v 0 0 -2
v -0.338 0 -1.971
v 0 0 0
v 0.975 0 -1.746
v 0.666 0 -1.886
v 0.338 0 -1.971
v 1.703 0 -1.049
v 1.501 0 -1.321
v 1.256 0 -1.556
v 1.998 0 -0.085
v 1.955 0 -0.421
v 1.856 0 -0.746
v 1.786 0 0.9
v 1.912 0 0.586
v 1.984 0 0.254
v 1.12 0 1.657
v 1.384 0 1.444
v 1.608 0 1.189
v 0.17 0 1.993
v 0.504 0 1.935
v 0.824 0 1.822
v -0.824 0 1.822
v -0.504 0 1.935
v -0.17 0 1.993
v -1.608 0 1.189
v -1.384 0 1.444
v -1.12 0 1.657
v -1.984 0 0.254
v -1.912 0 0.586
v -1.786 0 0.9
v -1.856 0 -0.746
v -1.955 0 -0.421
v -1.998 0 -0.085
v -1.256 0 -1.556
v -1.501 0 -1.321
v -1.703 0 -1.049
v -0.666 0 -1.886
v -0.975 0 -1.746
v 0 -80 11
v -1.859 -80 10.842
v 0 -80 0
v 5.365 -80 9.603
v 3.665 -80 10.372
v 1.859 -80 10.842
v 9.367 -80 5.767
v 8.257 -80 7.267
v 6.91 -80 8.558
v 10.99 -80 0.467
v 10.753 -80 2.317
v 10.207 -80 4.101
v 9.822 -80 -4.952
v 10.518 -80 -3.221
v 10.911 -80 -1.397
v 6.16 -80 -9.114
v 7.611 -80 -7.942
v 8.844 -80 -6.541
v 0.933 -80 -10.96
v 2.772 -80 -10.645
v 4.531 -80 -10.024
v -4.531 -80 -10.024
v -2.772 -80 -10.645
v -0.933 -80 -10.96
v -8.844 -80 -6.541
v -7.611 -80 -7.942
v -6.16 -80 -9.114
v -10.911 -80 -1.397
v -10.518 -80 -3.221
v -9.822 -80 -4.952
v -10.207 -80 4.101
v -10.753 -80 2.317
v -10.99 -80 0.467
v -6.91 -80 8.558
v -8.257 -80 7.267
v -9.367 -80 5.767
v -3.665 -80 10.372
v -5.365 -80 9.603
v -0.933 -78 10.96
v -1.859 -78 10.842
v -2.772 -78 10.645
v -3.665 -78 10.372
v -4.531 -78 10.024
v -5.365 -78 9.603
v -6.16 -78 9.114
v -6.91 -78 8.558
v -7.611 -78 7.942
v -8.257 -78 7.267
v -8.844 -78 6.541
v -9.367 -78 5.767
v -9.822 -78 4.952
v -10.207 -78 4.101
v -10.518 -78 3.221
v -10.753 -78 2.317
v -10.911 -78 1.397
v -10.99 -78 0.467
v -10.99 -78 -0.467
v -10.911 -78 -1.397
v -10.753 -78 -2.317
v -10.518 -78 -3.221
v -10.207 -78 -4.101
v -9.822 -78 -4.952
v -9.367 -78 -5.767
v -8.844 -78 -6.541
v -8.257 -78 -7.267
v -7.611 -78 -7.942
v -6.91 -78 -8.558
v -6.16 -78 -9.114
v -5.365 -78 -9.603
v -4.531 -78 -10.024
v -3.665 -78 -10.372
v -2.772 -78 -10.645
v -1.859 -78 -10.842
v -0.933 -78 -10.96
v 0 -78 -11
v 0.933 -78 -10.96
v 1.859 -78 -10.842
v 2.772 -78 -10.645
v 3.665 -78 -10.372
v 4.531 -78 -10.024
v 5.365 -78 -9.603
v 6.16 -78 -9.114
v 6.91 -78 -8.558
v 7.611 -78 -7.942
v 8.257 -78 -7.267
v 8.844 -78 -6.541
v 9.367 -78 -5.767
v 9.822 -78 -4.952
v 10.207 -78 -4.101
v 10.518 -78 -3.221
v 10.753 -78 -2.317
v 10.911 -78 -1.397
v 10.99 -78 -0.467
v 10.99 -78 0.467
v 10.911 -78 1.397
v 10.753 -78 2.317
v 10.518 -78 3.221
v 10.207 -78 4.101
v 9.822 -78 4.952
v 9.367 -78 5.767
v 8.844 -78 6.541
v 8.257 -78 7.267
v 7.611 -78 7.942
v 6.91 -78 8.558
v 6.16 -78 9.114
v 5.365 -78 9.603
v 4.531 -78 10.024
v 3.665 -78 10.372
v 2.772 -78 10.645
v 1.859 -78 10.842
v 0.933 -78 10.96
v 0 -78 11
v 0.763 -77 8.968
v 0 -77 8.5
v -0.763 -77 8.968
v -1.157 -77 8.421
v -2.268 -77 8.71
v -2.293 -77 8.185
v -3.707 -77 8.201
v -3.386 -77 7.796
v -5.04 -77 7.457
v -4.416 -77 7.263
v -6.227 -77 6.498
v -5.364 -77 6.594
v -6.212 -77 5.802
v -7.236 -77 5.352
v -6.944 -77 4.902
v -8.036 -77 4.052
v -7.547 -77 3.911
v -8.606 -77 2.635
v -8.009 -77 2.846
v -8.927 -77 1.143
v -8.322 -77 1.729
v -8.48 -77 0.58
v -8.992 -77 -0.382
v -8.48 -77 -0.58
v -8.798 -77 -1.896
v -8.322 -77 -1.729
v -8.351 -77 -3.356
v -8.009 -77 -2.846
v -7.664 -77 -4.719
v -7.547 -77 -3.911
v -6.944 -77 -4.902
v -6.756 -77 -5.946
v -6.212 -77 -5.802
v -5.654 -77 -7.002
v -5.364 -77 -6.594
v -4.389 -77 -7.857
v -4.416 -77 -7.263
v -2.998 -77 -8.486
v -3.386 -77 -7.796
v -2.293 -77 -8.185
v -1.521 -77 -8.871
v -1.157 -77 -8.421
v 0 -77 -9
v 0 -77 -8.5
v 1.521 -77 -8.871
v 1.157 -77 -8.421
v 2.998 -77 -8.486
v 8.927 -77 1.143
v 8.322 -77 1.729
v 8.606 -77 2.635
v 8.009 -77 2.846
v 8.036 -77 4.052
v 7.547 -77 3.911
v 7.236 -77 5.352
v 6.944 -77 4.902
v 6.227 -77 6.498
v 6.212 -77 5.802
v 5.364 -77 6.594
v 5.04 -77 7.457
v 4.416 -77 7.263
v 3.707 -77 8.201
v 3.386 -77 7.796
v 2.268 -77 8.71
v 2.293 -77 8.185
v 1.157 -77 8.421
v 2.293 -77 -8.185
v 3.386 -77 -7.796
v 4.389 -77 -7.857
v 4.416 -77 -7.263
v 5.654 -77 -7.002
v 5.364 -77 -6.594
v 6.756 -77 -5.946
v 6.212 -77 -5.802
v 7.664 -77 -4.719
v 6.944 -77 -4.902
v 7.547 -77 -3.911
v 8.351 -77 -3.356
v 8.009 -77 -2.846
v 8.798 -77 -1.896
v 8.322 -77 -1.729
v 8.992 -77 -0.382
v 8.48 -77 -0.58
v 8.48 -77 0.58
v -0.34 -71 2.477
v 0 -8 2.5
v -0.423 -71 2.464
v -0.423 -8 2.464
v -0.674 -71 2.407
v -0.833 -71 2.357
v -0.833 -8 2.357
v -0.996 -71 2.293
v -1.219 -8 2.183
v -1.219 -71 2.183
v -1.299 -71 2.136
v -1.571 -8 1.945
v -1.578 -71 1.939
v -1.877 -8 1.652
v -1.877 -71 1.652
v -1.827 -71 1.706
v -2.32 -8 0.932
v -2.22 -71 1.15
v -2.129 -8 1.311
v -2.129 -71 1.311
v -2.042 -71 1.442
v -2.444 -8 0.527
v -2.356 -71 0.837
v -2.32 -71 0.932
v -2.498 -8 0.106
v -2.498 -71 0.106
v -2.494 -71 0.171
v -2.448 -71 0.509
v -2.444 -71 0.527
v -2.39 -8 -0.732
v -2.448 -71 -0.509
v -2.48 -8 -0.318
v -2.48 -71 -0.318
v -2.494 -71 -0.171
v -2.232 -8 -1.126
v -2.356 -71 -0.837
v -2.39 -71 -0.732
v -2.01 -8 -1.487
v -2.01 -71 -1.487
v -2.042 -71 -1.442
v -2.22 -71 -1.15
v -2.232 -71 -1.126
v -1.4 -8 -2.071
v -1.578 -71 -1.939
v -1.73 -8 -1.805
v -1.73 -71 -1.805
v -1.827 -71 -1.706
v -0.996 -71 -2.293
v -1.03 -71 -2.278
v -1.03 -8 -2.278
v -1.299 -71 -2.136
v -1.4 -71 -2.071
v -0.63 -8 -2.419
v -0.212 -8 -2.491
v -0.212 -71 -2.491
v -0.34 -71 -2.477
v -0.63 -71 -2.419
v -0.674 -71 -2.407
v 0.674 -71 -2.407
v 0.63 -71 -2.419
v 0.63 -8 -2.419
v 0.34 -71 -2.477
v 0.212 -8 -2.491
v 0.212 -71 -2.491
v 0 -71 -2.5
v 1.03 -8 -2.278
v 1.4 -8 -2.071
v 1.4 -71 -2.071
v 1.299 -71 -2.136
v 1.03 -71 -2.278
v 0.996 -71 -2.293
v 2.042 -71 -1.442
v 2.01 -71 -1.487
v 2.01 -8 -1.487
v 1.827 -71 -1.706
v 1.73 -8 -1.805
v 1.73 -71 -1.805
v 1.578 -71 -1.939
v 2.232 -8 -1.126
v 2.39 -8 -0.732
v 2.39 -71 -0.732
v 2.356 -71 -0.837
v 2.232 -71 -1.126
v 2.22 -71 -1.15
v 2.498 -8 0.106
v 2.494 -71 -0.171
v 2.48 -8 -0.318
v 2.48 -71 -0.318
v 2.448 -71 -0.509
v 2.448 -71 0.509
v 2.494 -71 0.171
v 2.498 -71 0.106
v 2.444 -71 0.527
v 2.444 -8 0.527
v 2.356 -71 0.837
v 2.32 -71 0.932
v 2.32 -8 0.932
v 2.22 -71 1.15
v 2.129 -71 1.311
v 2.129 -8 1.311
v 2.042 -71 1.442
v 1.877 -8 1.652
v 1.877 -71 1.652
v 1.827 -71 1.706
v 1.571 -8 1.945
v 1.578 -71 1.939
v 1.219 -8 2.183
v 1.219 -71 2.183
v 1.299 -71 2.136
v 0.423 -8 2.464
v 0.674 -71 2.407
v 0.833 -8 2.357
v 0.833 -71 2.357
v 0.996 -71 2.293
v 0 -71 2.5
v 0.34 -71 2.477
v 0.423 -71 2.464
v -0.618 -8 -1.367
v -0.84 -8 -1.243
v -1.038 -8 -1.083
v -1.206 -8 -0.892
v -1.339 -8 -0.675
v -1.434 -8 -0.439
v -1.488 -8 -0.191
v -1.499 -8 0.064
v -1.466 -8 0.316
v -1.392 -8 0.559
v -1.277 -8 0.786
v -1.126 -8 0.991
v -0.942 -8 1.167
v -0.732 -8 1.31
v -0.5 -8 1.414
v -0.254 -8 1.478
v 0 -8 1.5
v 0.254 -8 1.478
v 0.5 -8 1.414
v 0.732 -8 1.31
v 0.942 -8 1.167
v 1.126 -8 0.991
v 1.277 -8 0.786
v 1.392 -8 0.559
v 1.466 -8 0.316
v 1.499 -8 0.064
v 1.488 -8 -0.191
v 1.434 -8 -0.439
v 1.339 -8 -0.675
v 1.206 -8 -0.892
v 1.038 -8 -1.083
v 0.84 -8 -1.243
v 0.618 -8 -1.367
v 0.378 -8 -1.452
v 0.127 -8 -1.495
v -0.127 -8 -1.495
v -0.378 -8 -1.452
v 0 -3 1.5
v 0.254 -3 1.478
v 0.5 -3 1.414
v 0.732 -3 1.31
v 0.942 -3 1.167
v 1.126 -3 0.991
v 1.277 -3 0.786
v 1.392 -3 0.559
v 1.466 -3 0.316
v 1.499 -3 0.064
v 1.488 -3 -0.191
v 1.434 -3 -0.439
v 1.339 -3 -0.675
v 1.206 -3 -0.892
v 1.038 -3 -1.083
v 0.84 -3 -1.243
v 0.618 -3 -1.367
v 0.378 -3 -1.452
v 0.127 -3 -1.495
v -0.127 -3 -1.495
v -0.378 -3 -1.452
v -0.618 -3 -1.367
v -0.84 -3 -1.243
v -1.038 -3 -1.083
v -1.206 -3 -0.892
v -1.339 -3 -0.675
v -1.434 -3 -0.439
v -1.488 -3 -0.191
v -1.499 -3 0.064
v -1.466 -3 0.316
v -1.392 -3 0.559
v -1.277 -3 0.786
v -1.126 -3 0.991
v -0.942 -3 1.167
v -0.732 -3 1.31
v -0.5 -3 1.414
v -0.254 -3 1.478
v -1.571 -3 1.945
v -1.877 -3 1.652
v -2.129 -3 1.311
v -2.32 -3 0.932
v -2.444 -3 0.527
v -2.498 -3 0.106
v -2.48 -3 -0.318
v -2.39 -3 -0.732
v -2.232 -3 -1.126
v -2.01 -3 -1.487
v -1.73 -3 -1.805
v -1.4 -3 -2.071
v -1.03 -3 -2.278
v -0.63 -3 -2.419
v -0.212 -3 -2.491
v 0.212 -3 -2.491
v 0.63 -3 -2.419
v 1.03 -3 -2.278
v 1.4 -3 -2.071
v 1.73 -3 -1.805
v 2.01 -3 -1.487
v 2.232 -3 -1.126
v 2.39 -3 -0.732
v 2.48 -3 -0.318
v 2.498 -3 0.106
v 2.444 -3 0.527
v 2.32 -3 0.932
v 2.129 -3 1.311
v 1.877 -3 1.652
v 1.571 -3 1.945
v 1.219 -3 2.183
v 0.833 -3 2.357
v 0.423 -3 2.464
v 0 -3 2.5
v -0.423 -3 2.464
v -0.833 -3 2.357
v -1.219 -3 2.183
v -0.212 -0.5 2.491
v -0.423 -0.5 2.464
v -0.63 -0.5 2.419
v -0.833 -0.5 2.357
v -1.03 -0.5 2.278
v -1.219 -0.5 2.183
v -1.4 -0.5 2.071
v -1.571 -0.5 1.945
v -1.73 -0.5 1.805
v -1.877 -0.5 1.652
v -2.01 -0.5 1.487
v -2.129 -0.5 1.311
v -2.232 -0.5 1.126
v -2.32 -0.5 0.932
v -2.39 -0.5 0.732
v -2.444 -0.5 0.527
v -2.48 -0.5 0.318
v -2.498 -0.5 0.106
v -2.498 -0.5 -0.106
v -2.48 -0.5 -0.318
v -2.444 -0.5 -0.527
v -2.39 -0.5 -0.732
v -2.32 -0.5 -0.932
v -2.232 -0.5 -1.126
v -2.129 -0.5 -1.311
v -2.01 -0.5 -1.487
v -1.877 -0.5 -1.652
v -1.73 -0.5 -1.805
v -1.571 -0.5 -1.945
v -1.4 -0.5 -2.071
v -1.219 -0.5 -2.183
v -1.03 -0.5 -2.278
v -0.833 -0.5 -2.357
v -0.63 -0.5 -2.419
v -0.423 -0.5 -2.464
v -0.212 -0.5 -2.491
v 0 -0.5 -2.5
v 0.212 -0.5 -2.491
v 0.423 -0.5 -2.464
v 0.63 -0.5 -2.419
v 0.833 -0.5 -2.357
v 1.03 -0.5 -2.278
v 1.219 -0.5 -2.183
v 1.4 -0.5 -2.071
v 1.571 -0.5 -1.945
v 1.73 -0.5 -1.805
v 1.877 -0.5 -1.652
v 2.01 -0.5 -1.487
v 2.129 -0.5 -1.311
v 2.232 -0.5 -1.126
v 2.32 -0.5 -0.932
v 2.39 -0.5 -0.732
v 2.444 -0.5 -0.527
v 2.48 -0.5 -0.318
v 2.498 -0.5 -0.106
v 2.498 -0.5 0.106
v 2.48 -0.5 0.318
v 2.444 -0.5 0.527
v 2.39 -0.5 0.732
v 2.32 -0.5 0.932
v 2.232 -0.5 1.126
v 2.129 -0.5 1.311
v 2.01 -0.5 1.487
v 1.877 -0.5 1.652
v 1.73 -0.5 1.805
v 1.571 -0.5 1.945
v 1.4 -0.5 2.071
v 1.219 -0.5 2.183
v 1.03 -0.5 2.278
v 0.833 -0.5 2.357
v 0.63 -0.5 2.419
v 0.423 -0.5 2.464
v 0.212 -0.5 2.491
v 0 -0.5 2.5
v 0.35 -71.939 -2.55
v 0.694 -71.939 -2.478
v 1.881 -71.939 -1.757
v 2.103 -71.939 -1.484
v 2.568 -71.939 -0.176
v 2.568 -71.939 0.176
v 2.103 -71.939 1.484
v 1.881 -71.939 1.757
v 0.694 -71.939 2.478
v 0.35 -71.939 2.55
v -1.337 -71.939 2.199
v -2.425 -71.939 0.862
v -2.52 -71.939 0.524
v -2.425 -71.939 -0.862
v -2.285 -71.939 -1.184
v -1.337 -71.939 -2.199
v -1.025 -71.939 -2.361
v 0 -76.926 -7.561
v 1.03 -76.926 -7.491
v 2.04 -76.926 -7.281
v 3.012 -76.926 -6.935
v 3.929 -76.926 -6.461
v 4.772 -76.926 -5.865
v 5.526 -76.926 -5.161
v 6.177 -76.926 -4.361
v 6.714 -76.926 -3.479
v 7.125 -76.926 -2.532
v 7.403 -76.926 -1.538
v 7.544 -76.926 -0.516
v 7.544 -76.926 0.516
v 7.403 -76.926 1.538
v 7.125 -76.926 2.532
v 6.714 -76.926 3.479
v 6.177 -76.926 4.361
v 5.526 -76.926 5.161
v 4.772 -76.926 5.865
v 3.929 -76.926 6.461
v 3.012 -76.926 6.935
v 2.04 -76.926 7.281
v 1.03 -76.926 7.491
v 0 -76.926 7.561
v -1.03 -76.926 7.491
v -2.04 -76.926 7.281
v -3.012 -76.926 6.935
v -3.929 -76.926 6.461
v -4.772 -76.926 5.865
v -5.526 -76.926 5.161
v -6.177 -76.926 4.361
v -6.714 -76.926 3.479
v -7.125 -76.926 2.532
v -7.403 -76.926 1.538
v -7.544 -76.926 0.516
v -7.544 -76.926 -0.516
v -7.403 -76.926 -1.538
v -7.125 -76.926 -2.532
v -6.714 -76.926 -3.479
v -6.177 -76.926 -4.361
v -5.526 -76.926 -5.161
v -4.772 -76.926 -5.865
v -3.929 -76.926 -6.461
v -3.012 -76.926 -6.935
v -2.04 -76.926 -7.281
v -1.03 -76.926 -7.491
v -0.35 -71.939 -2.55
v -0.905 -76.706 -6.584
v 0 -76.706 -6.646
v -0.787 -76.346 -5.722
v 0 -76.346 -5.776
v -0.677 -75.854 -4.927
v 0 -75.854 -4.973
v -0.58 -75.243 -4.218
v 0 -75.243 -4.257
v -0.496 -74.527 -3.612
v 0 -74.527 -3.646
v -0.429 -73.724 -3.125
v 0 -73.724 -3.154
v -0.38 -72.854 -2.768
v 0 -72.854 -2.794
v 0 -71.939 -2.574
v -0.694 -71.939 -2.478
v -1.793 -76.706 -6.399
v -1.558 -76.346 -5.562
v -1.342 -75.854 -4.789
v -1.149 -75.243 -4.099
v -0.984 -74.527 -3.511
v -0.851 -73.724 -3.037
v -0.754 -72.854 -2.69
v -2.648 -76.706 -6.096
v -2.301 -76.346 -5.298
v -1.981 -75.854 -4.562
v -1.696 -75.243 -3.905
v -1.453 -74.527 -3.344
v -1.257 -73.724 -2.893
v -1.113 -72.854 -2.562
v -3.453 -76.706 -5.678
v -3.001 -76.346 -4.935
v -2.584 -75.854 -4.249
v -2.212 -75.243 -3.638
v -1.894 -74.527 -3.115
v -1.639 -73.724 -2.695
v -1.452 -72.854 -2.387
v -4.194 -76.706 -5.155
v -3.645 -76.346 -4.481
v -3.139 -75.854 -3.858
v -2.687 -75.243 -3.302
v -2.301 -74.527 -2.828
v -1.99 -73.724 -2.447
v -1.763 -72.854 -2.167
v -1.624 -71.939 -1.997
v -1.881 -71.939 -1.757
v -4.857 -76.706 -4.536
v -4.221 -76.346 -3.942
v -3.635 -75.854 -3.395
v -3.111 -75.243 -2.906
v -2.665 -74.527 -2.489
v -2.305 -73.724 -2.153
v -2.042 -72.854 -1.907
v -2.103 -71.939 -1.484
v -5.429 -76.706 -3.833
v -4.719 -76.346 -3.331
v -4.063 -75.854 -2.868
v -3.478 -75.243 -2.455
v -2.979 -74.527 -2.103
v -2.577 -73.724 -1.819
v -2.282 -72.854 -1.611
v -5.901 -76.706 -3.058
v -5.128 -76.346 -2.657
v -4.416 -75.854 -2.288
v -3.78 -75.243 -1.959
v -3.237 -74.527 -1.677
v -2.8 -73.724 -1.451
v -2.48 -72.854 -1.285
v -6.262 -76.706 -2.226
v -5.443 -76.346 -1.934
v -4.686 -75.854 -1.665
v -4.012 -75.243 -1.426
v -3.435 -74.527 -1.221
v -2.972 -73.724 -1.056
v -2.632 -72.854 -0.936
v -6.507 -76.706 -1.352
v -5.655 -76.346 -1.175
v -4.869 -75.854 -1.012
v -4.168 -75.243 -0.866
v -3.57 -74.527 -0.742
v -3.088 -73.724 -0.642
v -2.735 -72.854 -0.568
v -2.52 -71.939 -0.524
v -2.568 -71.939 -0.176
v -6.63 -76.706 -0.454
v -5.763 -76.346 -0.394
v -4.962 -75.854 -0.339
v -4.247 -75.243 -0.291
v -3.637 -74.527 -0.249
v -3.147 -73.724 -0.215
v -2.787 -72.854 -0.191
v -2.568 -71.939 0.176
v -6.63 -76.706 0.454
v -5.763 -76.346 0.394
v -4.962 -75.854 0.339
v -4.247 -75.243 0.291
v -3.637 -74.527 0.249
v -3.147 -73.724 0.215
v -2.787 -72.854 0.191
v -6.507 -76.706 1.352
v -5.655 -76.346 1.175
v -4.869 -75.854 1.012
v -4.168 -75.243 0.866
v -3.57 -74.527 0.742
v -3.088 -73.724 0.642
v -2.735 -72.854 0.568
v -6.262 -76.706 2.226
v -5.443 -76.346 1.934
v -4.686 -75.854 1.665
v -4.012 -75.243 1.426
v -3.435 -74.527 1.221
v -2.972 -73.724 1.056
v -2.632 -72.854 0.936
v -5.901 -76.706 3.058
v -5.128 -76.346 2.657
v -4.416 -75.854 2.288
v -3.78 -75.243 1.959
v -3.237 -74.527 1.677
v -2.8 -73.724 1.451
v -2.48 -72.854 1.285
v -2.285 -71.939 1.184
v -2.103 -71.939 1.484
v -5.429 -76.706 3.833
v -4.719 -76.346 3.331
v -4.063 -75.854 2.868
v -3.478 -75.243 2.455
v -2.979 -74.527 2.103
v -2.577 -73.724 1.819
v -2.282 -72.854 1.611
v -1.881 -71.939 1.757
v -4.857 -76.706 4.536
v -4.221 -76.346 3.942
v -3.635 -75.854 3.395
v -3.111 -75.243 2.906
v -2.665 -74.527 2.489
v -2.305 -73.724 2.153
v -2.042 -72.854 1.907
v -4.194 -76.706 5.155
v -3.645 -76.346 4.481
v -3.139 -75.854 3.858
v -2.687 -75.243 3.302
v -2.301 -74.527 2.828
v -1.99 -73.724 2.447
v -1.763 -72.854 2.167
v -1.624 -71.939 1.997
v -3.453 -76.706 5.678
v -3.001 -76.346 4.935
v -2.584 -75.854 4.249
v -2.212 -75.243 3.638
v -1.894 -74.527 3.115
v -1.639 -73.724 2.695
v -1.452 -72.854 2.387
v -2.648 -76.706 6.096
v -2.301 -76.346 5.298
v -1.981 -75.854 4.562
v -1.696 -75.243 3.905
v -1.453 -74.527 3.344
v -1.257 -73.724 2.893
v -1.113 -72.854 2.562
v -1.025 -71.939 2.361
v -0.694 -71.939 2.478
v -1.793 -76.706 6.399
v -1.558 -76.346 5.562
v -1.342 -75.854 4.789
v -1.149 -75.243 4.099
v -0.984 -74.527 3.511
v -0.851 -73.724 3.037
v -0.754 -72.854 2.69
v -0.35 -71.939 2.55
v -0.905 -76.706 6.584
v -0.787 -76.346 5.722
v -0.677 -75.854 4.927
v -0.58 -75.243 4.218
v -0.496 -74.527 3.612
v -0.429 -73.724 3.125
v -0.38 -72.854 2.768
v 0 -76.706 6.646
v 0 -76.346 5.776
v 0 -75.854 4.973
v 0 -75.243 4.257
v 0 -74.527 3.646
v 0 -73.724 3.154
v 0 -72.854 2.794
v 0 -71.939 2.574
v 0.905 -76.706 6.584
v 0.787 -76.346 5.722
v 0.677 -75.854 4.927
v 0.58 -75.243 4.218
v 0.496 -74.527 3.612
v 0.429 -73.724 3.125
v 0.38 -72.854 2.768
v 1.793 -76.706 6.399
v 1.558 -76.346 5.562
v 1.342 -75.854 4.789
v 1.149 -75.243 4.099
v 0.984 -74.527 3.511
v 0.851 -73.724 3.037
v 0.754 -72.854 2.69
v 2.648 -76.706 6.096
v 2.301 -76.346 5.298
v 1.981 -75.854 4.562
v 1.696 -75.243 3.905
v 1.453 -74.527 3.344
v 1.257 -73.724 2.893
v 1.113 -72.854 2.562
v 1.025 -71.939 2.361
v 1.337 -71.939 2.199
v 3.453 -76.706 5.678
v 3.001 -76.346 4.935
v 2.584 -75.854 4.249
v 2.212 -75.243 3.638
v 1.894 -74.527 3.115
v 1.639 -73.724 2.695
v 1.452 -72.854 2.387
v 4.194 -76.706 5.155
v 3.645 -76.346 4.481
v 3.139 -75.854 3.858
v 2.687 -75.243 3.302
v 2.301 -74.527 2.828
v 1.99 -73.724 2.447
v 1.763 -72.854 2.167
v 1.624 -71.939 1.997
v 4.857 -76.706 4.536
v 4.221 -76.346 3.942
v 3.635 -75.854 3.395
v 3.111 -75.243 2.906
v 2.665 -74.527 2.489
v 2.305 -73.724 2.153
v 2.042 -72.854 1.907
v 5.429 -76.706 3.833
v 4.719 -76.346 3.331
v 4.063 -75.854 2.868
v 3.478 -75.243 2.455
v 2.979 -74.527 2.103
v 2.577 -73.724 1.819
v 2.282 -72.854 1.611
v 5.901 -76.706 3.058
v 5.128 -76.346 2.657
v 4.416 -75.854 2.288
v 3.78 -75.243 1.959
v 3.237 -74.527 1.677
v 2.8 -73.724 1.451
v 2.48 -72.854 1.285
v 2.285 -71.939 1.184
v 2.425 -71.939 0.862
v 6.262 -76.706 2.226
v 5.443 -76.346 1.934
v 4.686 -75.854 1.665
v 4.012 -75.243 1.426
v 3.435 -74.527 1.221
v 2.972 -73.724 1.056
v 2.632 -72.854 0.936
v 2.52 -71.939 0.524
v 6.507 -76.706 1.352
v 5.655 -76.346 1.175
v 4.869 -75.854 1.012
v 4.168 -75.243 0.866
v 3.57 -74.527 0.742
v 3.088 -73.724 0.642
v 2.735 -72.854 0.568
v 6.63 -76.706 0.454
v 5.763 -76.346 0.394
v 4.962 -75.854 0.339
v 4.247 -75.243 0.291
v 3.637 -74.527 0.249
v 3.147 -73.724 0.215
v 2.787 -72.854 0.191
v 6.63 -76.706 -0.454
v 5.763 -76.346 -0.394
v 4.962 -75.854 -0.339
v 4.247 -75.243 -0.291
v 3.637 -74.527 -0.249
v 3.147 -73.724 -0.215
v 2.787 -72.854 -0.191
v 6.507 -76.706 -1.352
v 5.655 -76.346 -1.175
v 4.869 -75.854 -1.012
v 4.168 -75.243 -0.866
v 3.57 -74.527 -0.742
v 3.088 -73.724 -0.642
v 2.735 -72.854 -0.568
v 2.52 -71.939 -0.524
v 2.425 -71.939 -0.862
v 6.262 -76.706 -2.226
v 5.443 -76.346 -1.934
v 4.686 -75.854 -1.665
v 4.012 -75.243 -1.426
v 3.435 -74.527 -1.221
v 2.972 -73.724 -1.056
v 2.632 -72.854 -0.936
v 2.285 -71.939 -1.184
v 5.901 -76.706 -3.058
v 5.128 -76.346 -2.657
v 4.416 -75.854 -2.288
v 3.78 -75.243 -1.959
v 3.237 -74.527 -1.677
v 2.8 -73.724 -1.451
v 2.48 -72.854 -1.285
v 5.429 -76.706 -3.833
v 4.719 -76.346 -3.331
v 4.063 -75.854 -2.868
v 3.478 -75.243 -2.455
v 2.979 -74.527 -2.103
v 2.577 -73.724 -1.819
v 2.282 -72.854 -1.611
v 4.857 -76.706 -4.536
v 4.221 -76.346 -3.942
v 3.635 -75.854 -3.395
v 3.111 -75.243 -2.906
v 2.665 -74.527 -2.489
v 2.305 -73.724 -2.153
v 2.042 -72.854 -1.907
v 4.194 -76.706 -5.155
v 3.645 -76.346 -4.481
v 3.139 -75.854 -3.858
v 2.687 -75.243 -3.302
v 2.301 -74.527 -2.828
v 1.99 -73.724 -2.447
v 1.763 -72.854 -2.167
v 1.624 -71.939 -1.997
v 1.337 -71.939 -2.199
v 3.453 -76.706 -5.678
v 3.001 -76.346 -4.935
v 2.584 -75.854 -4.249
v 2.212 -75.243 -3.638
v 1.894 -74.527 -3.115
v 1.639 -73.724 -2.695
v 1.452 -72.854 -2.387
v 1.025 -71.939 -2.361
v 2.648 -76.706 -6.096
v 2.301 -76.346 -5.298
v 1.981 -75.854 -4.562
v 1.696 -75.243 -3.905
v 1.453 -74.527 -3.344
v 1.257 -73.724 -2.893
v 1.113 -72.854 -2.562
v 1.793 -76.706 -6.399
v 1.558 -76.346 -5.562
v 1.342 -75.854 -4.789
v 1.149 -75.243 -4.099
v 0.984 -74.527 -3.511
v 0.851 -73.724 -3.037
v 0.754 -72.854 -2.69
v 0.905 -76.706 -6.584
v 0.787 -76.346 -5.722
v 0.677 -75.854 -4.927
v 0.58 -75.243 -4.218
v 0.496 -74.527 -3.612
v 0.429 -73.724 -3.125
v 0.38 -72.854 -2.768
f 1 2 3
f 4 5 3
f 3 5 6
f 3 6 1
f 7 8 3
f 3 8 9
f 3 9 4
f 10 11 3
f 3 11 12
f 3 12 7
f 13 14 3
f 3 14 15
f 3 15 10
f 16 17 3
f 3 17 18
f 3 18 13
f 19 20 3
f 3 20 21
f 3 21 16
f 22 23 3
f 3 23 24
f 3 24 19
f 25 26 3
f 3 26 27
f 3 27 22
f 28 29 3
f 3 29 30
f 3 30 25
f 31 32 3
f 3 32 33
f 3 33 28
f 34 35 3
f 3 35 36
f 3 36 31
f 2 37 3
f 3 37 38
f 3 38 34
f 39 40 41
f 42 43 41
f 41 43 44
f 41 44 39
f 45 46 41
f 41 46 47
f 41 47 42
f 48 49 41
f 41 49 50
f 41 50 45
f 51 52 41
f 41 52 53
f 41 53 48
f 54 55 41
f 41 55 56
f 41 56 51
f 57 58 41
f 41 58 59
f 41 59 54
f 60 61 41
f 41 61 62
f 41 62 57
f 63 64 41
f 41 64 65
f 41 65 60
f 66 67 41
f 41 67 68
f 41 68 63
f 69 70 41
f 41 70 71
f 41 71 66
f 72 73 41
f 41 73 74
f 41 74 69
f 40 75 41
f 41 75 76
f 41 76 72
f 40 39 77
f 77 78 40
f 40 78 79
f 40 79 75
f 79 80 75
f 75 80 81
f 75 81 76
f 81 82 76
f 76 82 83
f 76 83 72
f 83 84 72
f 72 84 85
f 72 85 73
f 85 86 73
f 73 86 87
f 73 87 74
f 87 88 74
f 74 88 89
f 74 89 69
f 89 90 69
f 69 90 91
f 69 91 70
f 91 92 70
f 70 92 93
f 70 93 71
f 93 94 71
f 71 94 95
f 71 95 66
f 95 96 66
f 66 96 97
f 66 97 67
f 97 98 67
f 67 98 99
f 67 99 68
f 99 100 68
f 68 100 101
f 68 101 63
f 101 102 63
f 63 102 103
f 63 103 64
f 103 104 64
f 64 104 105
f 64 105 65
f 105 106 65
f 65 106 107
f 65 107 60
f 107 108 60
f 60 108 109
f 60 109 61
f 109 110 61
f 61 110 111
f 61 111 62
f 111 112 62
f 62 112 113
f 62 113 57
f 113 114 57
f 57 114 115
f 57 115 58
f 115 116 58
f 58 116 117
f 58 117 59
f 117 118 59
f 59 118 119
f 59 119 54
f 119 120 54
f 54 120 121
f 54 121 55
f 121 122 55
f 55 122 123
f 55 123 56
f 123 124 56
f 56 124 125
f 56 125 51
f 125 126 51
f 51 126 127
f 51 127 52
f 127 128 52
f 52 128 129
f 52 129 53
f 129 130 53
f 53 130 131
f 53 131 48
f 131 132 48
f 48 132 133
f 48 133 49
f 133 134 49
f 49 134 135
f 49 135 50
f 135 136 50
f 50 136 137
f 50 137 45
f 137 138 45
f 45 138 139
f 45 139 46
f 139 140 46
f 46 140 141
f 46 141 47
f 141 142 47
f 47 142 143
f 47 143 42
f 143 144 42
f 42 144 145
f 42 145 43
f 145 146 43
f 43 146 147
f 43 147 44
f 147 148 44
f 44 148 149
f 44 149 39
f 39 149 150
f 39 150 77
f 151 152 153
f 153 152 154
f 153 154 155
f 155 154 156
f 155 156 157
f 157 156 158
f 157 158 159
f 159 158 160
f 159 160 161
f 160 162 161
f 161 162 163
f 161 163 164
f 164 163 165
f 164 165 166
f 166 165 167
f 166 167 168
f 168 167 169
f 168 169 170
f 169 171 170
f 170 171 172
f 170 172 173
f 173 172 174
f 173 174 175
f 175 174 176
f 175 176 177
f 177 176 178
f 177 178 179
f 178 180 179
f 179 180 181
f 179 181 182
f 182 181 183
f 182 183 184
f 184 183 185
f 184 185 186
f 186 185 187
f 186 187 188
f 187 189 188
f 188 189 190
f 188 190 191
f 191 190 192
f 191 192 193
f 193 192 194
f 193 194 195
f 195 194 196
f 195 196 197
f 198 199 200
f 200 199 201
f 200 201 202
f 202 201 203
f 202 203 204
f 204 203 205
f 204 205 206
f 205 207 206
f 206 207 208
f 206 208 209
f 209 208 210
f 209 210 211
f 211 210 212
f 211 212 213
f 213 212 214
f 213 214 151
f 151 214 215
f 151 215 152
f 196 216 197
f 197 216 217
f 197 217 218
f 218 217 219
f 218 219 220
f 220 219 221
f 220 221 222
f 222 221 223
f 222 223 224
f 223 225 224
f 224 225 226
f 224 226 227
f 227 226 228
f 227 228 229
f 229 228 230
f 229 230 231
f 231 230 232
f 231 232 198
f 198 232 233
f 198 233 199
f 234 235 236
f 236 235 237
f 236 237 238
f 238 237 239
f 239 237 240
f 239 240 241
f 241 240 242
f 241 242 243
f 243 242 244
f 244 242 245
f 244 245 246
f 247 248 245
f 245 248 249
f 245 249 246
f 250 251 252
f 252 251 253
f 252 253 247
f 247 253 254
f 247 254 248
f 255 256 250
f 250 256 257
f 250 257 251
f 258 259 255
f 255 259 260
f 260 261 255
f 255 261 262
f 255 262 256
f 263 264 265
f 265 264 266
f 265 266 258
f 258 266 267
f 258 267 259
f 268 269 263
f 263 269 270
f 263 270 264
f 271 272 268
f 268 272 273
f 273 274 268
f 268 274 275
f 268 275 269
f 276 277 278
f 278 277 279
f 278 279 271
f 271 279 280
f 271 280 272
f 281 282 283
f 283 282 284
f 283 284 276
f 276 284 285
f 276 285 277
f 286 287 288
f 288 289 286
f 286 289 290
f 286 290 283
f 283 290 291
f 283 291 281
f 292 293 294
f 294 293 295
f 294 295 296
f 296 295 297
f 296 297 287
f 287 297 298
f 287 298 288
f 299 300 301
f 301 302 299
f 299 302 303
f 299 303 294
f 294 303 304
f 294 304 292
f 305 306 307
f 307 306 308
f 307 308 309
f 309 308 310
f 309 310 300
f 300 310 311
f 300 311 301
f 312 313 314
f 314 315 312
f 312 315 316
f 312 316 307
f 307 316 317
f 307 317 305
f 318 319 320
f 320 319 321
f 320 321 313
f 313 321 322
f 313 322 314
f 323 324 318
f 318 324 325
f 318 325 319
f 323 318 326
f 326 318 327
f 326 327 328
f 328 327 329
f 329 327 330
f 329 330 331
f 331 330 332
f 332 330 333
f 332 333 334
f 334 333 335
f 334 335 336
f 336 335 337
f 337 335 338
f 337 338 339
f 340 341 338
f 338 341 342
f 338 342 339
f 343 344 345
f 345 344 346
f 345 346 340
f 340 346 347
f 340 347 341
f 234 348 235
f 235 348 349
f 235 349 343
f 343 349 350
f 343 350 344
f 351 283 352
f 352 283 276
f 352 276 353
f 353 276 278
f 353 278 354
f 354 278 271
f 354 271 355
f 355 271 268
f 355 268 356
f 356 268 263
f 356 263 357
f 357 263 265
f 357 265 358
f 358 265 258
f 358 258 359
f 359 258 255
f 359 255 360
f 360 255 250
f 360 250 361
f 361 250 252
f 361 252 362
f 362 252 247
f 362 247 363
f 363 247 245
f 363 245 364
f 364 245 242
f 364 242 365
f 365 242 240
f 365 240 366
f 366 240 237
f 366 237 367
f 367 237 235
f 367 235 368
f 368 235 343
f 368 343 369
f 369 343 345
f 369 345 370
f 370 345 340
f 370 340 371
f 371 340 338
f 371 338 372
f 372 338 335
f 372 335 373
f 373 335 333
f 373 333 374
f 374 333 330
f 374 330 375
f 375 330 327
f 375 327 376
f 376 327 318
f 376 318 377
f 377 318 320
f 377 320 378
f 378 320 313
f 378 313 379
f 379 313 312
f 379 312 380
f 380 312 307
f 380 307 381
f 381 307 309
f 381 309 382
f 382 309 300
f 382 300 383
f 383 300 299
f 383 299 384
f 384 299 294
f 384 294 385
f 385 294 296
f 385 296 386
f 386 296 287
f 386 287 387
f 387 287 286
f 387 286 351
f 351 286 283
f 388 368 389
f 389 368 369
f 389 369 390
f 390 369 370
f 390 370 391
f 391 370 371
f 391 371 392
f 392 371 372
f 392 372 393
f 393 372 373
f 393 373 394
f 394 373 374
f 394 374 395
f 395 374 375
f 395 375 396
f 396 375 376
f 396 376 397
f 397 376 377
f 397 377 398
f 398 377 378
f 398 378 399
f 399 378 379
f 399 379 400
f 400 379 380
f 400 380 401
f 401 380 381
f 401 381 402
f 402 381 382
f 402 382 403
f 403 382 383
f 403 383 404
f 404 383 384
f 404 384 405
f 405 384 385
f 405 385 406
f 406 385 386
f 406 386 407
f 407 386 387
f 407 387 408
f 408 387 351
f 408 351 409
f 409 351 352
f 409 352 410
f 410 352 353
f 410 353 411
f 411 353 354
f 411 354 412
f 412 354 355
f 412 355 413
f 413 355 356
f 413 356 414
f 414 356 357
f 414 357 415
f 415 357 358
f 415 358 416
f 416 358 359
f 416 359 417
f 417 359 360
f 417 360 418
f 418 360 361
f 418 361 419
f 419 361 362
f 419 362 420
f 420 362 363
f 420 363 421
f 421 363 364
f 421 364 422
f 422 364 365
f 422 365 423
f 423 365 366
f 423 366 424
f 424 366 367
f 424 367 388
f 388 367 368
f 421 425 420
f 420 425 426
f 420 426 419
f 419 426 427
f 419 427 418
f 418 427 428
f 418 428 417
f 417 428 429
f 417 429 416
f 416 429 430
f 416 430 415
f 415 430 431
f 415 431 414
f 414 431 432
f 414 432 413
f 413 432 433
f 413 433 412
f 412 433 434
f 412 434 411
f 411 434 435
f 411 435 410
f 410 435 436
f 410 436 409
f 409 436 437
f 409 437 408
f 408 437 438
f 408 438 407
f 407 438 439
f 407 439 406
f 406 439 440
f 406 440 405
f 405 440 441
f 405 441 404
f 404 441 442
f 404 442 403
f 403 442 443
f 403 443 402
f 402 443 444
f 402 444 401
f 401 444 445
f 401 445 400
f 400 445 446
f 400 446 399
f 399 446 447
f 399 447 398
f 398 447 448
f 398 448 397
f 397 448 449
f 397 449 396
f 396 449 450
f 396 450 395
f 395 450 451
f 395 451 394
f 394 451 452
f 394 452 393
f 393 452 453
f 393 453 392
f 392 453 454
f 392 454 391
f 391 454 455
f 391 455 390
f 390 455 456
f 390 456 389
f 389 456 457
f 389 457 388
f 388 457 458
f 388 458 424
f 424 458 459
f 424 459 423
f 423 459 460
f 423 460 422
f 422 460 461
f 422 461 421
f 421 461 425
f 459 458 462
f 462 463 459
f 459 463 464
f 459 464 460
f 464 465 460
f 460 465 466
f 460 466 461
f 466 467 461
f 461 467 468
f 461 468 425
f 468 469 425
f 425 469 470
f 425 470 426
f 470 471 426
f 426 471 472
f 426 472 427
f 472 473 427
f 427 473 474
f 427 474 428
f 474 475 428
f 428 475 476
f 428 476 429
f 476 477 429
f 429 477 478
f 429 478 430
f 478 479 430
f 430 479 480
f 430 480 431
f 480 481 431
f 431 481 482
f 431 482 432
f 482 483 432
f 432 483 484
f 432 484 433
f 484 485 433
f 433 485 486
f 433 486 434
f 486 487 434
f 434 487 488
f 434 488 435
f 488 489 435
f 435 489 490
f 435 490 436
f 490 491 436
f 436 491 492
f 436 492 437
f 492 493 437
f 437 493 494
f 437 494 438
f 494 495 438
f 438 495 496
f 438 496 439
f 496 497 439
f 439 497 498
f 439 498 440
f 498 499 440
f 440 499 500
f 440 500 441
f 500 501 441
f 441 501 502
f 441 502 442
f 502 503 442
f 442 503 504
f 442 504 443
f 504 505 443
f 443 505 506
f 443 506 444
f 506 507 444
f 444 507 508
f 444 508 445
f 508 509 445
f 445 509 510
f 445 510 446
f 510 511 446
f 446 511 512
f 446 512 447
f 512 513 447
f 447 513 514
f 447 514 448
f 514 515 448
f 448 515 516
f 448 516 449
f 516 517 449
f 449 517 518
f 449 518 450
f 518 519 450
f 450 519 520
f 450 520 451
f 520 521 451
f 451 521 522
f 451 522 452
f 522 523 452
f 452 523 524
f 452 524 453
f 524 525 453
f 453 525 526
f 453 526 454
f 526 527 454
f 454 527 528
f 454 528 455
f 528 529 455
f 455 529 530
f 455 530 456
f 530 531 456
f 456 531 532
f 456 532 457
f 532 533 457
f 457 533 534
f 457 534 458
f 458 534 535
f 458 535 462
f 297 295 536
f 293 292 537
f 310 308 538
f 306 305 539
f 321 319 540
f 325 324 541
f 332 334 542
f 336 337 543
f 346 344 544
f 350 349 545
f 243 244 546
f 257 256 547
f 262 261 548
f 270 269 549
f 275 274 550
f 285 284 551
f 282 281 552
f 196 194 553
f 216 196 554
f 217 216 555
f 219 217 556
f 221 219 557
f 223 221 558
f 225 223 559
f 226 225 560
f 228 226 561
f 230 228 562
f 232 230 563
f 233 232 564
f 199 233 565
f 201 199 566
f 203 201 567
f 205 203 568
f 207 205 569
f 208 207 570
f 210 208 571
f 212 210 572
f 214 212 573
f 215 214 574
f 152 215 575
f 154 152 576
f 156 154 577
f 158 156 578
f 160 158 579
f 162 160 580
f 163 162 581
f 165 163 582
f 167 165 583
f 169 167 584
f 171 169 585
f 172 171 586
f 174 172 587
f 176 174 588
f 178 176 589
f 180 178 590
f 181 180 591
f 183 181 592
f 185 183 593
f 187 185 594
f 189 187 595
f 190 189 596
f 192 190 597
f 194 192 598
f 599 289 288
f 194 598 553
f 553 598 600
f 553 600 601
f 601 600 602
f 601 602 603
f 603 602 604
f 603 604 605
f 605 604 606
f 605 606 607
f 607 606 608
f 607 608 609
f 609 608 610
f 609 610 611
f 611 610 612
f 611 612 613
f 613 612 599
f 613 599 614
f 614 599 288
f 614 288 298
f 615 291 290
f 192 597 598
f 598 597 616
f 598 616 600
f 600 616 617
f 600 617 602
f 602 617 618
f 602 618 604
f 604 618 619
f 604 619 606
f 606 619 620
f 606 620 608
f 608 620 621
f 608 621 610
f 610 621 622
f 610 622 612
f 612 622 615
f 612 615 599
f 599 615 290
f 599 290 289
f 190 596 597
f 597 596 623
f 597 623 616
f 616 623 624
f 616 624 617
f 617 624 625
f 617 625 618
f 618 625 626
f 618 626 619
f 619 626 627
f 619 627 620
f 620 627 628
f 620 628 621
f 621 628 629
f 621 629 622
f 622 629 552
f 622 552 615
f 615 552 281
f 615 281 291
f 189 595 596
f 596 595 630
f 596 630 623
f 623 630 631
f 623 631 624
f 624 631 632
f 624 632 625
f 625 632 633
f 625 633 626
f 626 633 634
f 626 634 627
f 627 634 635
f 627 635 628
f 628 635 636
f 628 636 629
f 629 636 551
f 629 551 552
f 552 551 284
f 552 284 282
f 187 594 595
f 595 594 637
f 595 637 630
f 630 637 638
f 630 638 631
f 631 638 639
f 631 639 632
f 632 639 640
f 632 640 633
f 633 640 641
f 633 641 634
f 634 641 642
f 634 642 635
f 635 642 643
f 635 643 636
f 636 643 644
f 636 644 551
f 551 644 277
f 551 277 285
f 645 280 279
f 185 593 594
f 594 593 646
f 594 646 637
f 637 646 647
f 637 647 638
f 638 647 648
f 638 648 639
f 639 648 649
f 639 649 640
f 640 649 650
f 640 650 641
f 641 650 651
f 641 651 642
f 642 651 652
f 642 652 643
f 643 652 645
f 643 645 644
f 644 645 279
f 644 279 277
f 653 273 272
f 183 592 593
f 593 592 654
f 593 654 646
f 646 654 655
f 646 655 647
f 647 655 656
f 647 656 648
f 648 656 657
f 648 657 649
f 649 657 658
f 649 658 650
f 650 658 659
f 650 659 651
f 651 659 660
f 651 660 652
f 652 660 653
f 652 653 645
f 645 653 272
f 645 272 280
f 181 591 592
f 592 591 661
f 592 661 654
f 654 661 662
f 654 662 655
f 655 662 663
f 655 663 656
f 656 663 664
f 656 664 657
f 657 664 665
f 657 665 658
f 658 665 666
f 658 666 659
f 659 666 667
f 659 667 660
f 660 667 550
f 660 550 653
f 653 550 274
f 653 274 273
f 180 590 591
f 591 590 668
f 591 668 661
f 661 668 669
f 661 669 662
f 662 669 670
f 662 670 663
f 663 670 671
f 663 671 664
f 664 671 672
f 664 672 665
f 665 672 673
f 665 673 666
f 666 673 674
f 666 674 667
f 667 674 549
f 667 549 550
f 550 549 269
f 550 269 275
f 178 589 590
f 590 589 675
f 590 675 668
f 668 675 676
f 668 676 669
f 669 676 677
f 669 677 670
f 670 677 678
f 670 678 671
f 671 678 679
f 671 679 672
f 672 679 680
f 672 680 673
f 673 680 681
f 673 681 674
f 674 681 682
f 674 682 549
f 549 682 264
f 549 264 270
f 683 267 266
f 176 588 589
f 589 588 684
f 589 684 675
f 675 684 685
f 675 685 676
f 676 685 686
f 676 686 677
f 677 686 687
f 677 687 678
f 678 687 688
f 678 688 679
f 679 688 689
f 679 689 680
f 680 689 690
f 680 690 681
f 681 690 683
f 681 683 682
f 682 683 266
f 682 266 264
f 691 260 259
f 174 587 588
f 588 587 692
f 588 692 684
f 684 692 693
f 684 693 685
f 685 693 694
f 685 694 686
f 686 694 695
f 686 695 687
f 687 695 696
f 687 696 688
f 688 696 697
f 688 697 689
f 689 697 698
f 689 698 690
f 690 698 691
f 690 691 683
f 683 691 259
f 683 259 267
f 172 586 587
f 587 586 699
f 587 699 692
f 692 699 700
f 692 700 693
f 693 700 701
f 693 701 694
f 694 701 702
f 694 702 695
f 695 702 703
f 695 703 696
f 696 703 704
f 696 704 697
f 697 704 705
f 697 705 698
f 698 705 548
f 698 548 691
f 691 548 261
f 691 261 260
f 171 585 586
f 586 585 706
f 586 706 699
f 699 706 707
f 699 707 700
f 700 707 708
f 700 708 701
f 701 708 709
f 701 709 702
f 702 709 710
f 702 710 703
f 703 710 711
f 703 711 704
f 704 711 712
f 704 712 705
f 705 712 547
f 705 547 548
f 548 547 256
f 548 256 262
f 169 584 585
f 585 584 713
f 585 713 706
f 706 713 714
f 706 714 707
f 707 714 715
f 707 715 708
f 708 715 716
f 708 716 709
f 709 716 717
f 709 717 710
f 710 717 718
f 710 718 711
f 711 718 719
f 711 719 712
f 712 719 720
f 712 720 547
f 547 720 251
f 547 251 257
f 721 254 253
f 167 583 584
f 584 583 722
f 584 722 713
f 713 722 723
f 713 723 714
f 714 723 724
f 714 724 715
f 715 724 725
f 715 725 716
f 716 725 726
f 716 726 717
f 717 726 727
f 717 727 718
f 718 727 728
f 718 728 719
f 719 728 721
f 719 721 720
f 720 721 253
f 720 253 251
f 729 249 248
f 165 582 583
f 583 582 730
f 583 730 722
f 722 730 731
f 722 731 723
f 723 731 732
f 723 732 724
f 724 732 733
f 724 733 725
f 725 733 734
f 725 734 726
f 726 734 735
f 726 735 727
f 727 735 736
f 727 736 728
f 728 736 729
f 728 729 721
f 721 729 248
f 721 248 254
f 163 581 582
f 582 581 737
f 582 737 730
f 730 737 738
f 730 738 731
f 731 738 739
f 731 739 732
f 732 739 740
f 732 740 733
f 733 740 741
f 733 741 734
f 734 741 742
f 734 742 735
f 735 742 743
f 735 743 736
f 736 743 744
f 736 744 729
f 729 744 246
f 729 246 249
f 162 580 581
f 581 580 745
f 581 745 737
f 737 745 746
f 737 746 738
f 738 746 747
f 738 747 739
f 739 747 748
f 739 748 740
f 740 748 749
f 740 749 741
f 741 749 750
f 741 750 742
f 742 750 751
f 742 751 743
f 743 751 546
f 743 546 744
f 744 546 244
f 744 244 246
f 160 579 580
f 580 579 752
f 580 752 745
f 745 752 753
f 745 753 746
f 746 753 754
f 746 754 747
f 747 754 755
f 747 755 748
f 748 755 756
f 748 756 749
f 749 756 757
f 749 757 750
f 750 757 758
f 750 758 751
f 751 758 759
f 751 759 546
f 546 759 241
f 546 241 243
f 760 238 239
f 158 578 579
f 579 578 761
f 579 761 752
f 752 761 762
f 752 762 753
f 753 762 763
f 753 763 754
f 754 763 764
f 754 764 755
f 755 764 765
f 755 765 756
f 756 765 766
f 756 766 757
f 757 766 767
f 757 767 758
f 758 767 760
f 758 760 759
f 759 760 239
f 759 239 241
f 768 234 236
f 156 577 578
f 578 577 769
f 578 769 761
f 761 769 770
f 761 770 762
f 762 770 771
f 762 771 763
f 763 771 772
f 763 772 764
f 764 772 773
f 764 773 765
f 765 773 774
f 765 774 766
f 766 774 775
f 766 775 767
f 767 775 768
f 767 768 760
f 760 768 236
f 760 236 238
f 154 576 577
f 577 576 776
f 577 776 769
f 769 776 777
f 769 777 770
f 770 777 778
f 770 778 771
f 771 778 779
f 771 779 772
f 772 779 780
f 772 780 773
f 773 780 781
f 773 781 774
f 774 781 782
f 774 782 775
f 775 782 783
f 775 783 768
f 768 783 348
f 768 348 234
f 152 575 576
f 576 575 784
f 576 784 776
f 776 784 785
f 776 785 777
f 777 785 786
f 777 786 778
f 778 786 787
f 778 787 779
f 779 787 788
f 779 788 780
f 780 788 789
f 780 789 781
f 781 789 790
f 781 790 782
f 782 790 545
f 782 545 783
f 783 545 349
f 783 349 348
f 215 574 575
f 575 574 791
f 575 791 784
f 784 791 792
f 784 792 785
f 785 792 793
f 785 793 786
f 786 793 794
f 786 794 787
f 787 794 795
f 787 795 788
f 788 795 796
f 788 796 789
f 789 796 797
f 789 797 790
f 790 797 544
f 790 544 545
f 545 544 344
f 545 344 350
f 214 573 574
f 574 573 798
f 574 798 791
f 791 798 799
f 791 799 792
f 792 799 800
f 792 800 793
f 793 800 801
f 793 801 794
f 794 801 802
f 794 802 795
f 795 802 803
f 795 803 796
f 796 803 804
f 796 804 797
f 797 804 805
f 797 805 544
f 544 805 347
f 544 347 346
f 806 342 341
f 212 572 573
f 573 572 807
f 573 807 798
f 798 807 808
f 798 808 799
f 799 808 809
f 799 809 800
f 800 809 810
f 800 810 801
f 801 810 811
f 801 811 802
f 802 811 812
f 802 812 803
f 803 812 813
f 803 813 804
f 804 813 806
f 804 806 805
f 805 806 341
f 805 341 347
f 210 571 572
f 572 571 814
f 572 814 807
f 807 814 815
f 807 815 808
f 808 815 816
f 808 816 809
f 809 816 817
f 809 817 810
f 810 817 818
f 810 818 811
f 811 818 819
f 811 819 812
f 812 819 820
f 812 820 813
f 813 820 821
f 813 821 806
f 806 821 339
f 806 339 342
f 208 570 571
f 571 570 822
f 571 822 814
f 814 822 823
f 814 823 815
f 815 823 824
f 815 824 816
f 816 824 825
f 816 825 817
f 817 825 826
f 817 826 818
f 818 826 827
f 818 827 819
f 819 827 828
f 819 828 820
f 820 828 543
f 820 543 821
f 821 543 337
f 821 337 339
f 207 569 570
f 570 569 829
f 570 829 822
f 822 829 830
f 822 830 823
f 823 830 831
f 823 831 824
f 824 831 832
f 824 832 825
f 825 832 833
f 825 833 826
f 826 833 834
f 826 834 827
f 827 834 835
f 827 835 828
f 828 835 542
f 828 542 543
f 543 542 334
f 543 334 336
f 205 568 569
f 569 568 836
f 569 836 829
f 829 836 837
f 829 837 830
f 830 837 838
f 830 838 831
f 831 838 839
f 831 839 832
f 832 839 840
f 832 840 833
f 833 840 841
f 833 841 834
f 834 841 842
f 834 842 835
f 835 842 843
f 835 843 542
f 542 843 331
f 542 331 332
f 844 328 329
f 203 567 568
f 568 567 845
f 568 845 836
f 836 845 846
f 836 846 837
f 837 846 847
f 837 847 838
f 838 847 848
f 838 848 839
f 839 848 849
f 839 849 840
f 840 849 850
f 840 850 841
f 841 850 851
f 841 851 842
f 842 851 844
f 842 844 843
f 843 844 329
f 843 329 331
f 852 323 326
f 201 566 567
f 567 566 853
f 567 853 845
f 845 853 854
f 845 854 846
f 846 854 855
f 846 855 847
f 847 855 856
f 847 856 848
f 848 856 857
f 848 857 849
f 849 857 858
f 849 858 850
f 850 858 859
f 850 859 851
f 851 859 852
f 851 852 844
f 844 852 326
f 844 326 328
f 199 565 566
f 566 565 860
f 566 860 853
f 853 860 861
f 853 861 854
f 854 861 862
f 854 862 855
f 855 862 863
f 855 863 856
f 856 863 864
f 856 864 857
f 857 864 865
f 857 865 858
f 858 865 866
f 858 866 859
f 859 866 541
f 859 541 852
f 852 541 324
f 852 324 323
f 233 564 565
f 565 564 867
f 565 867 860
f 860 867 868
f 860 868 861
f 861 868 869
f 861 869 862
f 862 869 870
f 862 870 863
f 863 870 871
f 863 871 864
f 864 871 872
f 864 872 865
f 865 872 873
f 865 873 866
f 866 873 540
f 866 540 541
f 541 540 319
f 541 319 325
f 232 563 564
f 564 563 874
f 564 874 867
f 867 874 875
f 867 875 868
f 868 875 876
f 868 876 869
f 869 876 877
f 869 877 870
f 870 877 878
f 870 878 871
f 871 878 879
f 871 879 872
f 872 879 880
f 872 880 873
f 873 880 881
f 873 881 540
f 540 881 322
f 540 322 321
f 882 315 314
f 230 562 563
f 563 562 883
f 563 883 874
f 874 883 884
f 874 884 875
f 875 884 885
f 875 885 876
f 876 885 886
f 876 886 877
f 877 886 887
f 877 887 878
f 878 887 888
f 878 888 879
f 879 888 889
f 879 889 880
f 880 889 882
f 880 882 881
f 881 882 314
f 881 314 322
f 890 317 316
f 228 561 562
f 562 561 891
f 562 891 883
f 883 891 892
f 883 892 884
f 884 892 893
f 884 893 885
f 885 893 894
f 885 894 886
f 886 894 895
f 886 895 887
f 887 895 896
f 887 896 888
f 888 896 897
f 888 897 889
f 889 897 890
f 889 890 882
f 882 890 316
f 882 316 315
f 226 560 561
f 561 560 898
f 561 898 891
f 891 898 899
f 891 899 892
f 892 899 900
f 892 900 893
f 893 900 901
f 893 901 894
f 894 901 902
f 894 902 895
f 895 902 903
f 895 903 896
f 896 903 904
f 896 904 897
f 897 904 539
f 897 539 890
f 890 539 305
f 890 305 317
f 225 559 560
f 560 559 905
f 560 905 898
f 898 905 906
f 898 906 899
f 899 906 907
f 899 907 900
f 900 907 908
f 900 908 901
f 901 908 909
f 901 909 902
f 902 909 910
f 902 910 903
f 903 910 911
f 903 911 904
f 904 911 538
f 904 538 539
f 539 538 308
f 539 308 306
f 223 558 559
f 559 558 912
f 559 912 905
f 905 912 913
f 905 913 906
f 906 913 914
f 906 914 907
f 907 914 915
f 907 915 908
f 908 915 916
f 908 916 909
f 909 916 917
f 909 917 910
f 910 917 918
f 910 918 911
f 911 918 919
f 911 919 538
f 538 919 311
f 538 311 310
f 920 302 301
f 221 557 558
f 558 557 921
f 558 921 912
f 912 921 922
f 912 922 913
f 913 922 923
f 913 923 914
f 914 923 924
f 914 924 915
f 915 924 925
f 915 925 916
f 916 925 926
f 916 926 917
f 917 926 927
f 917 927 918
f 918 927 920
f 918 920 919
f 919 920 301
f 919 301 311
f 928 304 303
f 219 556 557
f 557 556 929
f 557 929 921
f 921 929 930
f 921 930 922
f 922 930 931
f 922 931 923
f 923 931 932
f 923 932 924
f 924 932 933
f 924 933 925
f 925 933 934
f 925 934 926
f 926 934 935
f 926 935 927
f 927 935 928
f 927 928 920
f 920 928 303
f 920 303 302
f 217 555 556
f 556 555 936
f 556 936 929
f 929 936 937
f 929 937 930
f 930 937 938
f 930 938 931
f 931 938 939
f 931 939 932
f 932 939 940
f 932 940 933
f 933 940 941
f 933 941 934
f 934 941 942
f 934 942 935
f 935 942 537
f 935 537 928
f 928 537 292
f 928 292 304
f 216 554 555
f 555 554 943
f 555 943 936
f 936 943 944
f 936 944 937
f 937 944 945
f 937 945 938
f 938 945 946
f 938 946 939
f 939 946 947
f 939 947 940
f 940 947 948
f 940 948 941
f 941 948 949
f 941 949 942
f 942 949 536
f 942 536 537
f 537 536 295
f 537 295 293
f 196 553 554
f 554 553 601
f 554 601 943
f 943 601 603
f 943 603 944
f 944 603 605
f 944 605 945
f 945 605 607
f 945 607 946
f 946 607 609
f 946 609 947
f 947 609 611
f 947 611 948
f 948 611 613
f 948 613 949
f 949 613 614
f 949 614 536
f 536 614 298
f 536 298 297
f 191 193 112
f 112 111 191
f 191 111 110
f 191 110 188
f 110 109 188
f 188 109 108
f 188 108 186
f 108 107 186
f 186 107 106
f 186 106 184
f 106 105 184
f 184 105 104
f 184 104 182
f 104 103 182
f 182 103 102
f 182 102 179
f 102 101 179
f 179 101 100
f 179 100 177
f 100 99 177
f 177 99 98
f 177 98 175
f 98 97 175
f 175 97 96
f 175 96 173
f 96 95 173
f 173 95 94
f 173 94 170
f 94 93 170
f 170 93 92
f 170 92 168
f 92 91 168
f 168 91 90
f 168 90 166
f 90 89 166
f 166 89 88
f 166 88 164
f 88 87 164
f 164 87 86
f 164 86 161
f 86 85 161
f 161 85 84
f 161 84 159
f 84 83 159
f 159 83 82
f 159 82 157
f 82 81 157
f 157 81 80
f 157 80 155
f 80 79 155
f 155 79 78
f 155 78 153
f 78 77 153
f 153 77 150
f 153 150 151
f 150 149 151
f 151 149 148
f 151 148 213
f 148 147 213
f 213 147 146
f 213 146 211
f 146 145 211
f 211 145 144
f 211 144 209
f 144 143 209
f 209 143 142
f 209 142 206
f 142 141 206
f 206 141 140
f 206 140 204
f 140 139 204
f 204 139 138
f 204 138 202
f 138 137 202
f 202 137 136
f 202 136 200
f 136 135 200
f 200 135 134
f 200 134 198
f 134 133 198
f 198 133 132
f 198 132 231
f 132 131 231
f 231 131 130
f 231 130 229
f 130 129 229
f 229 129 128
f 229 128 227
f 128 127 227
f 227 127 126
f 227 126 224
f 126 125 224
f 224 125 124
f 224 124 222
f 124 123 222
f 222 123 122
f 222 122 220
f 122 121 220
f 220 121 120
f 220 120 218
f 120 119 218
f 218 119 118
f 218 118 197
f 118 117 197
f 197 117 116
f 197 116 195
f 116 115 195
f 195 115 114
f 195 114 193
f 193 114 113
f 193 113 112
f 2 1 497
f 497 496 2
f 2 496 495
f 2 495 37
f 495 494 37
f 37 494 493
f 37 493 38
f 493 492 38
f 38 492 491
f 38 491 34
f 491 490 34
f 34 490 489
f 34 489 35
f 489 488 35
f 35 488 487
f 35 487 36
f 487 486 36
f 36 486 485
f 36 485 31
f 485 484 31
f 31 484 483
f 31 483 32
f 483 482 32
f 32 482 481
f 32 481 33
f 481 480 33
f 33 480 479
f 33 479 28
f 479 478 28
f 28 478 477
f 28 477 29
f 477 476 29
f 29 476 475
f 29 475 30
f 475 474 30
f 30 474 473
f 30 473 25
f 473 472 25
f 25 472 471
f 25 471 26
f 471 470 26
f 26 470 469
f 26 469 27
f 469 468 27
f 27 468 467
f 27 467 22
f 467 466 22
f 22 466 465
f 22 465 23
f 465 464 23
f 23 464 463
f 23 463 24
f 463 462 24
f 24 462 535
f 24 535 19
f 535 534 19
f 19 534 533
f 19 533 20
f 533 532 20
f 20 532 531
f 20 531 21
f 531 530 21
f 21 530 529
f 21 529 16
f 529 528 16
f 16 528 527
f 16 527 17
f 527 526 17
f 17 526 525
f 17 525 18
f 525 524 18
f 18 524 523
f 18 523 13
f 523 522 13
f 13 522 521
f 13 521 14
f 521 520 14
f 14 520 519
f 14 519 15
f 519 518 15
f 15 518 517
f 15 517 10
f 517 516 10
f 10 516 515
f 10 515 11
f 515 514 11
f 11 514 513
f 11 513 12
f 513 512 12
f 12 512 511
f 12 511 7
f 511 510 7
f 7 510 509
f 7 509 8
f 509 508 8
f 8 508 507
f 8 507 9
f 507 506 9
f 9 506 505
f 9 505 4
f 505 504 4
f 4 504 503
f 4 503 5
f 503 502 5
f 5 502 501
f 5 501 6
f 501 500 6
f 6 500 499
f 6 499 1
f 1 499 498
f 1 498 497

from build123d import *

# Parameters (mm, degrees)
FILLET2_R      = 6
CHAMFER1_SIZE  = 1
CHAMFER1_SIZE2 = 2
CHAMFER2_SIZE  = 0.5


with BuildPart() as part:
    # Sketch1 → Revolve1 (revolve)
    with BuildSketch(Plane(origin=(0, 0, 0), x_dir=(0, 0, -1), z_dir=(1, 0, 0))):
        Polygon((0, 0), (0, -80), (11, -80), (11, -77), (2.5, -77), (2.5, -8), (1.5, -8), (1.5, -3), (2.5, -3), (2.5, 0), align=None)
    revolve(axis=Axis((0, 0, 0), (0, -1, 0)))

    # Fillet2
    fillet2_edges = [part.edges().sort_by_distance(p)[0] for p in [
        (0, -77, 2.5),
    ]]
    fillet(fillet2_edges, radius=FILLET2_R)

    # Chamfer1
    chamfer1_edges = [part.edges().sort_by_distance(p)[0] for p in [
        (0, -77, 11),
    ]]
    chamfer1_side = [part.faces().sort_by_distance(p)[0] for p in [
        (0, -78.5, 11),
    ]]
    chamfer(chamfer1_edges, length=CHAMFER1_SIZE, length2=CHAMFER1_SIZE2, reference=chamfer1_side[0])

    # Chamfer2
    chamfer2_edges = [part.edges().sort_by_distance(p)[0] for p in [
        (0, 0, 2.5),
    ]]
    chamfer(chamfer2_edges, length=CHAMFER2_SIZE)


solid = part.part
